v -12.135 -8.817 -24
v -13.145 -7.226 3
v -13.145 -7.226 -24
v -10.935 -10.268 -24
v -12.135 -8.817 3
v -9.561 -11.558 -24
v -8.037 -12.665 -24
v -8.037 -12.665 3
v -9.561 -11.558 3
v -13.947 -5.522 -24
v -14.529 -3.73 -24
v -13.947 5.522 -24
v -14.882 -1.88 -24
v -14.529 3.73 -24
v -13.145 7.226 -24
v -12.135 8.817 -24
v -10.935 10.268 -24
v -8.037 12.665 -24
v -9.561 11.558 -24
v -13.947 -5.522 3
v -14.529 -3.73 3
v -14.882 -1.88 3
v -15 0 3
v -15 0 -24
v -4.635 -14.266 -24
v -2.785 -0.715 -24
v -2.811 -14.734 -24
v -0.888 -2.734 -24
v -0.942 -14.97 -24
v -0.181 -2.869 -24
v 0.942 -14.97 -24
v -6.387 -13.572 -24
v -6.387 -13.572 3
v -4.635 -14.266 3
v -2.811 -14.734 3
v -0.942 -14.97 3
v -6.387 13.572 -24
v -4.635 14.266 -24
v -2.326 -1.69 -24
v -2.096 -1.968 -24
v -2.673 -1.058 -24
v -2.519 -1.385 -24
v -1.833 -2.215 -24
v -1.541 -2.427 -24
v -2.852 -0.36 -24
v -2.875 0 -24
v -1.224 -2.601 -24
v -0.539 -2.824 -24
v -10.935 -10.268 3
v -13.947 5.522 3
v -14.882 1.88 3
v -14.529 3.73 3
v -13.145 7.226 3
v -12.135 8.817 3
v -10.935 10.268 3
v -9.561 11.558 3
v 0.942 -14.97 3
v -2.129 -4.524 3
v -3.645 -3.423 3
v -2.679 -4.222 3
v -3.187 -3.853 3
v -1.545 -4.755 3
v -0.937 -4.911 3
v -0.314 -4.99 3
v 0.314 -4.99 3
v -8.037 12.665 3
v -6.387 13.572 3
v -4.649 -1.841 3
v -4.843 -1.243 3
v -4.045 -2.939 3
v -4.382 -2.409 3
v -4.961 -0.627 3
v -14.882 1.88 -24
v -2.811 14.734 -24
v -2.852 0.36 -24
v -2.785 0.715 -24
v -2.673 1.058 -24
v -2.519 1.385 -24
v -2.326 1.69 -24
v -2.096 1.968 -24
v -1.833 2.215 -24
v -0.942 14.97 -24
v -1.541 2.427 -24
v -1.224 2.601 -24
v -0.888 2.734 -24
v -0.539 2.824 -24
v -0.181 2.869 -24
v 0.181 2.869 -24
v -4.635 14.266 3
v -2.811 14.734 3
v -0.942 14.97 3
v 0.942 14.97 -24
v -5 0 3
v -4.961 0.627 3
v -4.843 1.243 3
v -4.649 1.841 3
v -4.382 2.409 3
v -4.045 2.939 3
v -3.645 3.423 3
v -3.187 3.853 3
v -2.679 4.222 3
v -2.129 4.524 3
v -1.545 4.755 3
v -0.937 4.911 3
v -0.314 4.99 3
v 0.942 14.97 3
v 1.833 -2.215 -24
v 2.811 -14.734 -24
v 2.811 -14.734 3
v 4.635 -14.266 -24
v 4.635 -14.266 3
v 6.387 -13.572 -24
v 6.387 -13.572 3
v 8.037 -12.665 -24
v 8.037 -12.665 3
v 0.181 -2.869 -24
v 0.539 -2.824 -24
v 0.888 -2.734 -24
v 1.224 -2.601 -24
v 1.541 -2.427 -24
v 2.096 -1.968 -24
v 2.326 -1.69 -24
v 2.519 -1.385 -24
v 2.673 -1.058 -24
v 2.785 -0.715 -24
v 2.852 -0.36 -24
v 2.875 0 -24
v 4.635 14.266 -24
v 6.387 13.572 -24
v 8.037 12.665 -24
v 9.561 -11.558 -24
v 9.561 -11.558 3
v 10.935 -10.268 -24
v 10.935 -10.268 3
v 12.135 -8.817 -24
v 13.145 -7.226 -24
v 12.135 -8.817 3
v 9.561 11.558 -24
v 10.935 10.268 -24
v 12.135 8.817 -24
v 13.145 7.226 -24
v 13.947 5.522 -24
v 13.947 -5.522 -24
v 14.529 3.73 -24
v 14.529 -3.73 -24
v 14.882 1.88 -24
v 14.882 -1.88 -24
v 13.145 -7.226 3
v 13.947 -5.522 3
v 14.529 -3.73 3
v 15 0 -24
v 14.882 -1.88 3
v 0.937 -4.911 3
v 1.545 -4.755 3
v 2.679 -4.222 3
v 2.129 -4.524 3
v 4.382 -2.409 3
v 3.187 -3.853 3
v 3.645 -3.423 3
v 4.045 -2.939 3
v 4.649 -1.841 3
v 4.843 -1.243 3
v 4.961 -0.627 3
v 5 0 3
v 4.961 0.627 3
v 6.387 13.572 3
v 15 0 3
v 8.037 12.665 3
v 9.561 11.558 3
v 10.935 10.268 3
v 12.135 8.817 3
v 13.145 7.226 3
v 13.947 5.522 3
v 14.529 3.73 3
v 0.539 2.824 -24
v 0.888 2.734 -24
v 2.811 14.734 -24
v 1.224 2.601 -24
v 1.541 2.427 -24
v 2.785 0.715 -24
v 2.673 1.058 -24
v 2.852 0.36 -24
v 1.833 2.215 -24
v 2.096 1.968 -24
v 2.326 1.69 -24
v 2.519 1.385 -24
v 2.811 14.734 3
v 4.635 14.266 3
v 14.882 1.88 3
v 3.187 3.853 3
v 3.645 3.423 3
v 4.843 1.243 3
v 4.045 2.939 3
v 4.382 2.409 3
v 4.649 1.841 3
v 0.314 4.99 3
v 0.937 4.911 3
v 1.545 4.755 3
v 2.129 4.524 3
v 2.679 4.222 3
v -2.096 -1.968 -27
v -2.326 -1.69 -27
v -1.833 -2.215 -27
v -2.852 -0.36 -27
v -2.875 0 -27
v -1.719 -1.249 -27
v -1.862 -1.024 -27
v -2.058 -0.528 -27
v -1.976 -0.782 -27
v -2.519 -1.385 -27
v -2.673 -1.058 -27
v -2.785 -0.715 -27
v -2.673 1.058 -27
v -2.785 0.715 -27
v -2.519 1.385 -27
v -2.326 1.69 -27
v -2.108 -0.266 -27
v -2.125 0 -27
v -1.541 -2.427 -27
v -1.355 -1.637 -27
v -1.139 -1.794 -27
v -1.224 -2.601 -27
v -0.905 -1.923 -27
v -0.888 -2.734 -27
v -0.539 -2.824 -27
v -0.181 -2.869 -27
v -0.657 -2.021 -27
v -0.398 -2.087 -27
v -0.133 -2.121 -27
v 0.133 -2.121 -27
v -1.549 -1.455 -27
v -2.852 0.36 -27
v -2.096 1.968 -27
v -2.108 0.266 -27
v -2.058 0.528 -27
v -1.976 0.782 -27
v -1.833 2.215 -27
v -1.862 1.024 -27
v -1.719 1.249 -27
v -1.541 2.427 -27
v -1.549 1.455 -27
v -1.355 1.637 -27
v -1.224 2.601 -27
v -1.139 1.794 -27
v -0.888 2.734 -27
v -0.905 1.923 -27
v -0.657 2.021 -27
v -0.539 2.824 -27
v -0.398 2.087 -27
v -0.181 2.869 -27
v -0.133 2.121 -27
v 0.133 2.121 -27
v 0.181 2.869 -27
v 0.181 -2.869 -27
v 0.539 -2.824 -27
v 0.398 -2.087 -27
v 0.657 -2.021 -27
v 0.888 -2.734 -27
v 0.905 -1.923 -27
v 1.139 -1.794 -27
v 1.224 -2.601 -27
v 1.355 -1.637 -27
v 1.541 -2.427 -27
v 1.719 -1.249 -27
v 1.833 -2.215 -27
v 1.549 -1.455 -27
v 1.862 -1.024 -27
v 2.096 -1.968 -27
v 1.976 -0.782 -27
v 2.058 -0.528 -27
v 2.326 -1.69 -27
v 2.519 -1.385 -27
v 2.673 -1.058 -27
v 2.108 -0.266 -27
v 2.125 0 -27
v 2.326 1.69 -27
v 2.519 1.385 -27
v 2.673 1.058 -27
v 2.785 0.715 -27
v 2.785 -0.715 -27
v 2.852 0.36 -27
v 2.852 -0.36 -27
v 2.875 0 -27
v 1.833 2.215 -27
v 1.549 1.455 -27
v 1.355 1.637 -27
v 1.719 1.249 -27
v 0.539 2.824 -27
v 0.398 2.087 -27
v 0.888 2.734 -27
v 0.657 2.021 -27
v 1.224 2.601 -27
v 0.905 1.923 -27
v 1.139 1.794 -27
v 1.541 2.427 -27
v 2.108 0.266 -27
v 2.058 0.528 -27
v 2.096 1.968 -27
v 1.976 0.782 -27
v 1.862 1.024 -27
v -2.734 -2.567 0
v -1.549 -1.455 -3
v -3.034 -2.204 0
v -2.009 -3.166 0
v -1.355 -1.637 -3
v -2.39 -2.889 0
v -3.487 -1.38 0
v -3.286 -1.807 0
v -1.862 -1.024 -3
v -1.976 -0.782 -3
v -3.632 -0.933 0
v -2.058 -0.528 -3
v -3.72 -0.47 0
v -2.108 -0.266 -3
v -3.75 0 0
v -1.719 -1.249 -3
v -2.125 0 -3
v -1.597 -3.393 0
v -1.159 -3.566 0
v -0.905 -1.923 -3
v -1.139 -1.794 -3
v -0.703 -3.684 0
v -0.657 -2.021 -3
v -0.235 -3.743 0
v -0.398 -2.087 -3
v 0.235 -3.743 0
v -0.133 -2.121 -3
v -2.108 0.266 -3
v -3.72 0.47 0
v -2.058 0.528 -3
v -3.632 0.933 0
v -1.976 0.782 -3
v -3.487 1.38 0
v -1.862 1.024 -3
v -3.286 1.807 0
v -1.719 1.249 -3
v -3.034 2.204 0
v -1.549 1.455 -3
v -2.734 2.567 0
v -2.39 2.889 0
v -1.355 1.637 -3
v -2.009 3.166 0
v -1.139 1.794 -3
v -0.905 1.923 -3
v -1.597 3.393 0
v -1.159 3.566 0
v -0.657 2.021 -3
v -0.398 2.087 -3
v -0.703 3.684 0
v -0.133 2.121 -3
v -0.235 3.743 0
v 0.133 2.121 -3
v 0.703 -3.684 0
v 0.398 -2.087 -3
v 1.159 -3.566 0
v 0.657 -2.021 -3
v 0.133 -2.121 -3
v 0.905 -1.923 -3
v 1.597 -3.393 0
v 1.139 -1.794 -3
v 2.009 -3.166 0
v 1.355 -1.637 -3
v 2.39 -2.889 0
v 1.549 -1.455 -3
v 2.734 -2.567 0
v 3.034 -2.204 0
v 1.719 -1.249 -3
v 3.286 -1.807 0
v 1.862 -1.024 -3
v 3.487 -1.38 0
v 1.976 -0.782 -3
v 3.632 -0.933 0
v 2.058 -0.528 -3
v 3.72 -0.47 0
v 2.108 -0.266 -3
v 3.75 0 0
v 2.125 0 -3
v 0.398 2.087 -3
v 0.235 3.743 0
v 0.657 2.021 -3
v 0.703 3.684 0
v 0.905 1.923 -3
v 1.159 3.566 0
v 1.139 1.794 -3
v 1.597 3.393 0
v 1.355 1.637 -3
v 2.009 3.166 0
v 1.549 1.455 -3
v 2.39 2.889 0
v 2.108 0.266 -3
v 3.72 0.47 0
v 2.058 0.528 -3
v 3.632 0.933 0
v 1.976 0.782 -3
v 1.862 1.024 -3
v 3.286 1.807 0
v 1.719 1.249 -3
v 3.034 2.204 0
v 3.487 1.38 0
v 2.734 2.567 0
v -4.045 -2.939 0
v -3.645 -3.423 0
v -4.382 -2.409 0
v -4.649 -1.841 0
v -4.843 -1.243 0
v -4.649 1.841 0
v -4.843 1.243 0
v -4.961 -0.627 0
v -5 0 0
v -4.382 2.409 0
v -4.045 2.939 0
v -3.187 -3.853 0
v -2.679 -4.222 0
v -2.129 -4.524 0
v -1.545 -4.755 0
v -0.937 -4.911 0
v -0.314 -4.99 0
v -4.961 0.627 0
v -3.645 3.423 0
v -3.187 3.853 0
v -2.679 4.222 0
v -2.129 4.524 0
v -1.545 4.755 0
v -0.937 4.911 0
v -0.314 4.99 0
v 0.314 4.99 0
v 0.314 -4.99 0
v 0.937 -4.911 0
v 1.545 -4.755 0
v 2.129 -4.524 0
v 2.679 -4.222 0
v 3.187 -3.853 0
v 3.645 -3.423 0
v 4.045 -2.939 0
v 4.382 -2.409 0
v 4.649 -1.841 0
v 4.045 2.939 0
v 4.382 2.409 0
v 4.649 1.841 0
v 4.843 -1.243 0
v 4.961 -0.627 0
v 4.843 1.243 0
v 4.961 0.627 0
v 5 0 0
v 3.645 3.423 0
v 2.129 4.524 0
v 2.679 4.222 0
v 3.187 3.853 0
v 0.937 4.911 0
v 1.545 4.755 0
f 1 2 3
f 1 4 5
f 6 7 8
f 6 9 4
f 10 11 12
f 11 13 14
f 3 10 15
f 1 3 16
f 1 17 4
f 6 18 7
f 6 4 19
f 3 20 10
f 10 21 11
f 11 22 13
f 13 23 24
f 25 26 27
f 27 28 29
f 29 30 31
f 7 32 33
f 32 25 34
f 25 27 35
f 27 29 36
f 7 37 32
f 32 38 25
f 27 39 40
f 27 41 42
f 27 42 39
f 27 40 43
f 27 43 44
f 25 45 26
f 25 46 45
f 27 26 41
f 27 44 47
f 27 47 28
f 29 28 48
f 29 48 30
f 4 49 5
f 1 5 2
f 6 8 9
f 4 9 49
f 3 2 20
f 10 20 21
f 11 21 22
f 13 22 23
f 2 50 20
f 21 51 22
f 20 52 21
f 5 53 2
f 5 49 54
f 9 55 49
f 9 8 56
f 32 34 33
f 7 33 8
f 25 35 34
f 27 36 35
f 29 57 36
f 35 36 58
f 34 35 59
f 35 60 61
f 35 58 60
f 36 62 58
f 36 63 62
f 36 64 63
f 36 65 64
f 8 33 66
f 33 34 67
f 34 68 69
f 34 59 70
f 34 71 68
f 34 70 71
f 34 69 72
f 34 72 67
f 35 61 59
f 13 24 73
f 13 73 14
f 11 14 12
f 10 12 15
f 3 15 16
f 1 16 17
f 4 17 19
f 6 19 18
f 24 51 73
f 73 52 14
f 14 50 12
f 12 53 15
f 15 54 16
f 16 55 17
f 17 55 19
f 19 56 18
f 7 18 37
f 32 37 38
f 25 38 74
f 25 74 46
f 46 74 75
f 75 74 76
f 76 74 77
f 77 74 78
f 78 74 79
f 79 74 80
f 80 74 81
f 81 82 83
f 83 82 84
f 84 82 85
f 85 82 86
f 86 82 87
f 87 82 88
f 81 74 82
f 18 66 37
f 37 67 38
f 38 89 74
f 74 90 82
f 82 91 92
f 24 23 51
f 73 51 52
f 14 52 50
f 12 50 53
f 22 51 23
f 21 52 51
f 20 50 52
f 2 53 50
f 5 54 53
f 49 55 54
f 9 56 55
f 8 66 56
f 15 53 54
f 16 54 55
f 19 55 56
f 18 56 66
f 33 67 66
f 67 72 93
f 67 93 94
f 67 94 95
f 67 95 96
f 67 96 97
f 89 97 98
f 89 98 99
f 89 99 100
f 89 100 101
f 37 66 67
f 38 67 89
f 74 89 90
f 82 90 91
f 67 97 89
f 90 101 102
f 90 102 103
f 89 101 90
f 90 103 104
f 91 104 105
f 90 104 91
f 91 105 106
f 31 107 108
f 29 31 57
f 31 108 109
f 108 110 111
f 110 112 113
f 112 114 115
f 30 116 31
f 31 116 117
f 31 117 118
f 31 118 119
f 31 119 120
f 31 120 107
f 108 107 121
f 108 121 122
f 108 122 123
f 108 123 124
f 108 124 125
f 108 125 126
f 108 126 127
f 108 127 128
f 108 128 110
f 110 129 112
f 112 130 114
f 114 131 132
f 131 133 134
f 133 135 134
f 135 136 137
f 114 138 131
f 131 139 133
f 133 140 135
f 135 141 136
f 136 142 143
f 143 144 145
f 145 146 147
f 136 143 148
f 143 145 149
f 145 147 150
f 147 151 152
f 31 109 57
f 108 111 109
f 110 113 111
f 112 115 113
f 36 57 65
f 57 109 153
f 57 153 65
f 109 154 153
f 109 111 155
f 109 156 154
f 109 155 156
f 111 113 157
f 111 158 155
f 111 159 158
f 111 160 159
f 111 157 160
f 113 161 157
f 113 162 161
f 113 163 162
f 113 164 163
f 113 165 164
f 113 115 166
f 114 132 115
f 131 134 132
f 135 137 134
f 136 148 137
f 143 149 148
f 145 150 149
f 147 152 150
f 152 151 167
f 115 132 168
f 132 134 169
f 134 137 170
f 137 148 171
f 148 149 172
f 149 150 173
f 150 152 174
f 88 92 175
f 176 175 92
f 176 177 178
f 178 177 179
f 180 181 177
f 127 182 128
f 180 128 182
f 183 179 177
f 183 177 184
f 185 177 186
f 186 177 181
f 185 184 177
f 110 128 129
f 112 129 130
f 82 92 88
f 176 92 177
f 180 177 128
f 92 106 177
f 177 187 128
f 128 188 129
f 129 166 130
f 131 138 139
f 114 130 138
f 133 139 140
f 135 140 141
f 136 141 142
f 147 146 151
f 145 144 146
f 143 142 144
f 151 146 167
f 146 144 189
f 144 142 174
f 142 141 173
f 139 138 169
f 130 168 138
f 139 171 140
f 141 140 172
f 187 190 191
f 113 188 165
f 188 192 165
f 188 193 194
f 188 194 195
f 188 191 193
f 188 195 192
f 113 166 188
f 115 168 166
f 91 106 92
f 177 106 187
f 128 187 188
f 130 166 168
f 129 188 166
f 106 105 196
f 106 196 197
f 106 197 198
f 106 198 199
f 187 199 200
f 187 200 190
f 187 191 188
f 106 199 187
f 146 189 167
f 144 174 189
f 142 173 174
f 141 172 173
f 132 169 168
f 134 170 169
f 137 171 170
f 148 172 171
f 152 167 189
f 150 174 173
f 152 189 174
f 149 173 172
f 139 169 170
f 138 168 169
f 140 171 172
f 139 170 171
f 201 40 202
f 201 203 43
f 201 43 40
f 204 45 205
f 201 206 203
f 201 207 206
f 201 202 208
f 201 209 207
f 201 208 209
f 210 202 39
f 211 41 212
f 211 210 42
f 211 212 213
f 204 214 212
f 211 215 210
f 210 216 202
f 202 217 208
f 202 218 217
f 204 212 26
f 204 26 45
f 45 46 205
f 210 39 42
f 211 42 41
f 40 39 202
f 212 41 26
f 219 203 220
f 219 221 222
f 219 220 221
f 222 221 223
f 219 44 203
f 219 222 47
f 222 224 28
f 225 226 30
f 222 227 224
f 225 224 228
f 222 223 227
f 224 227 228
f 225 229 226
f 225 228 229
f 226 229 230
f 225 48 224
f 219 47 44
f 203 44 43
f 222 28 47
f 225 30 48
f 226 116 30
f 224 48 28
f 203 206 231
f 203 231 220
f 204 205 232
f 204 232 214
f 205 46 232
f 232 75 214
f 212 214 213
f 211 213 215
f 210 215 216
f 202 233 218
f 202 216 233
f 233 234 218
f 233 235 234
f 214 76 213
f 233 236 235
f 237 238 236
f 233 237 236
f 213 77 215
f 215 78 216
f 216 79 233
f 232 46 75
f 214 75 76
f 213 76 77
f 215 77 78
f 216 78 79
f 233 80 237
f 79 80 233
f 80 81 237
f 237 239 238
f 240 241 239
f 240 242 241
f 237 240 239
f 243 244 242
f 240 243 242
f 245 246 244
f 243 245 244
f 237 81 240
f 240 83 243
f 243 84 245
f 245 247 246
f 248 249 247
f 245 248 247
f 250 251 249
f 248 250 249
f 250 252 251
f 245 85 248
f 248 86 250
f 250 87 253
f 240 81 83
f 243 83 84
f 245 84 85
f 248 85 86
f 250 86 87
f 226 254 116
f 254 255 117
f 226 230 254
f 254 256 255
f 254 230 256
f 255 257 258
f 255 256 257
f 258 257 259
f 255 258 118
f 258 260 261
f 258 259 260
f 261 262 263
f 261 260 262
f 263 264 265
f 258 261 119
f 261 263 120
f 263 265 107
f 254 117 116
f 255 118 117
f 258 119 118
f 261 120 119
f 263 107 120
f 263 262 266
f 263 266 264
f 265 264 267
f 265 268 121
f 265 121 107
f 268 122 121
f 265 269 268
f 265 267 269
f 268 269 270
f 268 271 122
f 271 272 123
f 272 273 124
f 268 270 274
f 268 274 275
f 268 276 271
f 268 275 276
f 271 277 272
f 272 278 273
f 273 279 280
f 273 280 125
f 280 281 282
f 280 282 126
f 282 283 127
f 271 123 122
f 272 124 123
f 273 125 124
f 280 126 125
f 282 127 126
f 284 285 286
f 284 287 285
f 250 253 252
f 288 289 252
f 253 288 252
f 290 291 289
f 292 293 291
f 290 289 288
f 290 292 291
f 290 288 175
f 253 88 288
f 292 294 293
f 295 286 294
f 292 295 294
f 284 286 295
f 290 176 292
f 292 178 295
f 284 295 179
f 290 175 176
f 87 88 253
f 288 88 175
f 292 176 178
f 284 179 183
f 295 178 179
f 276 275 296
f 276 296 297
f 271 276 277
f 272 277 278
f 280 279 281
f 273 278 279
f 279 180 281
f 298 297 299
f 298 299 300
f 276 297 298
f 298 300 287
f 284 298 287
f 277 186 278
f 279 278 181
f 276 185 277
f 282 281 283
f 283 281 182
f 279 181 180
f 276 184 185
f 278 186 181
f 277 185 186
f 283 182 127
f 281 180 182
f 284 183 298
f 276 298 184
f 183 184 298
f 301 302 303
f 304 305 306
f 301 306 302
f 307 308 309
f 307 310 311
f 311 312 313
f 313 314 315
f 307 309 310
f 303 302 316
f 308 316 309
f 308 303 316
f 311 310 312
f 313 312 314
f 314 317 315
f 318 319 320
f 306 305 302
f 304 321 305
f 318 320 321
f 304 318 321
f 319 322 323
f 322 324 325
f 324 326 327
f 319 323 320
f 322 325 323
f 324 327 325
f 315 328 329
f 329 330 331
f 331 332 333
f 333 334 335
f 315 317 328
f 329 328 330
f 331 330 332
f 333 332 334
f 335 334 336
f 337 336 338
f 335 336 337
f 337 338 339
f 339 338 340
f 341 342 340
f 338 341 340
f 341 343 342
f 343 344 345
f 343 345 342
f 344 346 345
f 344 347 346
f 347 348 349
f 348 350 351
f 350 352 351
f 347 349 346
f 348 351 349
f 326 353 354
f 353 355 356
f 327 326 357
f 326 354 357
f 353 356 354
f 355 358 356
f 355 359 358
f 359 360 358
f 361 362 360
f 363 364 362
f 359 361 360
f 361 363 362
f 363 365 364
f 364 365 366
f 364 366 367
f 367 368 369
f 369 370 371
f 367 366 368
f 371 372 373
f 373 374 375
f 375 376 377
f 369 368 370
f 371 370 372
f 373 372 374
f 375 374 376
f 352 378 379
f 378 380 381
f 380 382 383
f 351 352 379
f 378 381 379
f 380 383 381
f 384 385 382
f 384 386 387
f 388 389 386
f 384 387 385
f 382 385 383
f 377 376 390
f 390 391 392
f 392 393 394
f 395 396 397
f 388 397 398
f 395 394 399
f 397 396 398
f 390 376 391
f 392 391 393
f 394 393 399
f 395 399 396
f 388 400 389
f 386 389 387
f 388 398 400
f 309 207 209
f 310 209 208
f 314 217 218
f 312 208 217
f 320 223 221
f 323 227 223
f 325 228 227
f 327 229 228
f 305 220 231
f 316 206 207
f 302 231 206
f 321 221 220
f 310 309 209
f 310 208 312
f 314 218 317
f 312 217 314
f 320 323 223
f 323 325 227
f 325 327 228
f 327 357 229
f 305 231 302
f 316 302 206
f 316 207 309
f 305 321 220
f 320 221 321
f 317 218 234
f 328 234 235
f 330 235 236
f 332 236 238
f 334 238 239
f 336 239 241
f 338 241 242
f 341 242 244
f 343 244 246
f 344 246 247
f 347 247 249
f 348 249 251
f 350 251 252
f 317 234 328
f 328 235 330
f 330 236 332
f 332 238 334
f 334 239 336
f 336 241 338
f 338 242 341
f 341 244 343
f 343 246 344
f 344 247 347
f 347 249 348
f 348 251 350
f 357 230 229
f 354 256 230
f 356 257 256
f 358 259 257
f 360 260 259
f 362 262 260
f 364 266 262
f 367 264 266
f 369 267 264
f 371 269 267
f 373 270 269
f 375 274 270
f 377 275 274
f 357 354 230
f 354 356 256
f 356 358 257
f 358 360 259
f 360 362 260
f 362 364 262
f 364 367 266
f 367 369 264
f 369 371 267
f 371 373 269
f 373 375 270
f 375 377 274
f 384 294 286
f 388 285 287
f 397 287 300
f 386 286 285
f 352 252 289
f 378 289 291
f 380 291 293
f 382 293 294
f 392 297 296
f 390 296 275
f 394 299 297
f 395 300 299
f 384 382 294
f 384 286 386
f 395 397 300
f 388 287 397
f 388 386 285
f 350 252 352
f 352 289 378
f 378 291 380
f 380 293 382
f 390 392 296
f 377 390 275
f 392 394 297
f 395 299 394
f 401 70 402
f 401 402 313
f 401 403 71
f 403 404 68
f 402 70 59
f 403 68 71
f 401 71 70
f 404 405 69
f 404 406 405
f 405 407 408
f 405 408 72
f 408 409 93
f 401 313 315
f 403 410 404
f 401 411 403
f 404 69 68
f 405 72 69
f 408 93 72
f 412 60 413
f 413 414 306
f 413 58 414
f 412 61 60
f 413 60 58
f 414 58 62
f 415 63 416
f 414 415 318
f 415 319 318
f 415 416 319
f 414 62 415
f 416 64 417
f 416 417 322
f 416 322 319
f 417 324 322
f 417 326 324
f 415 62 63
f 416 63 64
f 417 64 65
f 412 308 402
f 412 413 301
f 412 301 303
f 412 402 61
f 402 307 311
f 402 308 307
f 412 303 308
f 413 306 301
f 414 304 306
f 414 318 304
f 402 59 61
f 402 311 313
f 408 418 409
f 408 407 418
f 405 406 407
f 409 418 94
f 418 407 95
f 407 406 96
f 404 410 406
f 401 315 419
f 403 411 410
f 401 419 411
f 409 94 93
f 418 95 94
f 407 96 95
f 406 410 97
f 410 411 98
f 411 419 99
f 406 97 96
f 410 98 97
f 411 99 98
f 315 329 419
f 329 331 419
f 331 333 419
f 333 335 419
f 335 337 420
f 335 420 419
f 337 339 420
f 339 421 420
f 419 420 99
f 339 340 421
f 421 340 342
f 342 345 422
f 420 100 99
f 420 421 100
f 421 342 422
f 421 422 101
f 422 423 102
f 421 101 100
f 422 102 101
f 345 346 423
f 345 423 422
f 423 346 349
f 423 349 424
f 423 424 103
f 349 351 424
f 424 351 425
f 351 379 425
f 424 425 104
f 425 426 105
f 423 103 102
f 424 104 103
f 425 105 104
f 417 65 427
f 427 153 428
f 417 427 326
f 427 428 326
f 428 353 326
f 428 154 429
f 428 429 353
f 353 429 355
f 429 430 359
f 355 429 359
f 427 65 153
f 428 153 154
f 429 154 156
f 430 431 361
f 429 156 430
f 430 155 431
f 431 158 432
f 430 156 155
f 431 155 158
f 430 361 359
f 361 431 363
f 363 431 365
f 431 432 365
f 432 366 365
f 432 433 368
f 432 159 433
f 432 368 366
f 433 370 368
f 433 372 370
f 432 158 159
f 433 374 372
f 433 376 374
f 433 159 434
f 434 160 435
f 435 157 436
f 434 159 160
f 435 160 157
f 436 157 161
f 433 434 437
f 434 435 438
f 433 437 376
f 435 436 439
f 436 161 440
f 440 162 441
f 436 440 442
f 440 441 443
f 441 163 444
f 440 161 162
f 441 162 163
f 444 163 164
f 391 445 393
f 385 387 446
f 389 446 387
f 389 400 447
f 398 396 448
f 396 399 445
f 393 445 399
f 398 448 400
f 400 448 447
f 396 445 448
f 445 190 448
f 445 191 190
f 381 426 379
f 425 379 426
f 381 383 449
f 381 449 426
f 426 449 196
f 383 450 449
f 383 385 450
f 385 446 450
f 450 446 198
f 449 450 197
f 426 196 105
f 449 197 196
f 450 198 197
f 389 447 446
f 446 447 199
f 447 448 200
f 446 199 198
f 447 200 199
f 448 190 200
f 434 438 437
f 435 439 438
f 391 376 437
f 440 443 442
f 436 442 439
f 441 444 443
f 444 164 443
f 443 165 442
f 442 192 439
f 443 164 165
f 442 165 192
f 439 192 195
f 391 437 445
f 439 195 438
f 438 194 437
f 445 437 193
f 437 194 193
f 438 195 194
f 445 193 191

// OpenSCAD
$fn = 50;


difference() {
	union() {
		translate(v = [0, 0, -24.0000000000]) {
			cylinder(h = 27, r = 15.0000000000);
		}
		#translate(v = [0, 0, -27.0000000000]) {
			cylinder(h = 27, r = 2.8750000000);
		}
	}
	union() {
		translate(v = [0, 0, 0]) {
			rotate(a = [0, 0, 0]) {
				difference() {
					union() {
						translate(v = [0, 0, -27.0000000000]) {
							cylinder(h = 27, r = 2.0000000000);
						}
						translate(v = [0, 0, -3]) {
							cylinder(h = 3, r1 = 2.1250000000, r2 = 3.7500000000);
						}
						translate(v = [0, 0, -27.0000000000]) {
							cylinder(h = 27, r = 2.1250000000);
						}
						translate(v = [0, 0, -27.0000000000]) {
							cylinder(h = 27, r = 2.0000000000);
						}
					}
					union();
				}
			}
		}
		#cylinder(h = 3, r = 5.0000000000);
	}
}
